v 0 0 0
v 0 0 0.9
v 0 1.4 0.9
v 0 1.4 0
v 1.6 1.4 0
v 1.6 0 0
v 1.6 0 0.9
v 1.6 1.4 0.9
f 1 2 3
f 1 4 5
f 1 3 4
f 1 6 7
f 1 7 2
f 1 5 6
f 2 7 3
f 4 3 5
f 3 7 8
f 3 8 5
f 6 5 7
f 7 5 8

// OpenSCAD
/* Warning, this is a very basic generator with a lot of approximation 
input data : [VDFN, 8JW, 1.6x1.4x0.9mm, 8, , A, C04-00663A]
generated by com.zoubworld.electronics.cad.model3d.Basic
Date : Sun Feb 15 10:50:49 CET 2026
*/

//body
color("black")
translate([0,0,0])
cube([1.6,1.4,0.9], center=false);
